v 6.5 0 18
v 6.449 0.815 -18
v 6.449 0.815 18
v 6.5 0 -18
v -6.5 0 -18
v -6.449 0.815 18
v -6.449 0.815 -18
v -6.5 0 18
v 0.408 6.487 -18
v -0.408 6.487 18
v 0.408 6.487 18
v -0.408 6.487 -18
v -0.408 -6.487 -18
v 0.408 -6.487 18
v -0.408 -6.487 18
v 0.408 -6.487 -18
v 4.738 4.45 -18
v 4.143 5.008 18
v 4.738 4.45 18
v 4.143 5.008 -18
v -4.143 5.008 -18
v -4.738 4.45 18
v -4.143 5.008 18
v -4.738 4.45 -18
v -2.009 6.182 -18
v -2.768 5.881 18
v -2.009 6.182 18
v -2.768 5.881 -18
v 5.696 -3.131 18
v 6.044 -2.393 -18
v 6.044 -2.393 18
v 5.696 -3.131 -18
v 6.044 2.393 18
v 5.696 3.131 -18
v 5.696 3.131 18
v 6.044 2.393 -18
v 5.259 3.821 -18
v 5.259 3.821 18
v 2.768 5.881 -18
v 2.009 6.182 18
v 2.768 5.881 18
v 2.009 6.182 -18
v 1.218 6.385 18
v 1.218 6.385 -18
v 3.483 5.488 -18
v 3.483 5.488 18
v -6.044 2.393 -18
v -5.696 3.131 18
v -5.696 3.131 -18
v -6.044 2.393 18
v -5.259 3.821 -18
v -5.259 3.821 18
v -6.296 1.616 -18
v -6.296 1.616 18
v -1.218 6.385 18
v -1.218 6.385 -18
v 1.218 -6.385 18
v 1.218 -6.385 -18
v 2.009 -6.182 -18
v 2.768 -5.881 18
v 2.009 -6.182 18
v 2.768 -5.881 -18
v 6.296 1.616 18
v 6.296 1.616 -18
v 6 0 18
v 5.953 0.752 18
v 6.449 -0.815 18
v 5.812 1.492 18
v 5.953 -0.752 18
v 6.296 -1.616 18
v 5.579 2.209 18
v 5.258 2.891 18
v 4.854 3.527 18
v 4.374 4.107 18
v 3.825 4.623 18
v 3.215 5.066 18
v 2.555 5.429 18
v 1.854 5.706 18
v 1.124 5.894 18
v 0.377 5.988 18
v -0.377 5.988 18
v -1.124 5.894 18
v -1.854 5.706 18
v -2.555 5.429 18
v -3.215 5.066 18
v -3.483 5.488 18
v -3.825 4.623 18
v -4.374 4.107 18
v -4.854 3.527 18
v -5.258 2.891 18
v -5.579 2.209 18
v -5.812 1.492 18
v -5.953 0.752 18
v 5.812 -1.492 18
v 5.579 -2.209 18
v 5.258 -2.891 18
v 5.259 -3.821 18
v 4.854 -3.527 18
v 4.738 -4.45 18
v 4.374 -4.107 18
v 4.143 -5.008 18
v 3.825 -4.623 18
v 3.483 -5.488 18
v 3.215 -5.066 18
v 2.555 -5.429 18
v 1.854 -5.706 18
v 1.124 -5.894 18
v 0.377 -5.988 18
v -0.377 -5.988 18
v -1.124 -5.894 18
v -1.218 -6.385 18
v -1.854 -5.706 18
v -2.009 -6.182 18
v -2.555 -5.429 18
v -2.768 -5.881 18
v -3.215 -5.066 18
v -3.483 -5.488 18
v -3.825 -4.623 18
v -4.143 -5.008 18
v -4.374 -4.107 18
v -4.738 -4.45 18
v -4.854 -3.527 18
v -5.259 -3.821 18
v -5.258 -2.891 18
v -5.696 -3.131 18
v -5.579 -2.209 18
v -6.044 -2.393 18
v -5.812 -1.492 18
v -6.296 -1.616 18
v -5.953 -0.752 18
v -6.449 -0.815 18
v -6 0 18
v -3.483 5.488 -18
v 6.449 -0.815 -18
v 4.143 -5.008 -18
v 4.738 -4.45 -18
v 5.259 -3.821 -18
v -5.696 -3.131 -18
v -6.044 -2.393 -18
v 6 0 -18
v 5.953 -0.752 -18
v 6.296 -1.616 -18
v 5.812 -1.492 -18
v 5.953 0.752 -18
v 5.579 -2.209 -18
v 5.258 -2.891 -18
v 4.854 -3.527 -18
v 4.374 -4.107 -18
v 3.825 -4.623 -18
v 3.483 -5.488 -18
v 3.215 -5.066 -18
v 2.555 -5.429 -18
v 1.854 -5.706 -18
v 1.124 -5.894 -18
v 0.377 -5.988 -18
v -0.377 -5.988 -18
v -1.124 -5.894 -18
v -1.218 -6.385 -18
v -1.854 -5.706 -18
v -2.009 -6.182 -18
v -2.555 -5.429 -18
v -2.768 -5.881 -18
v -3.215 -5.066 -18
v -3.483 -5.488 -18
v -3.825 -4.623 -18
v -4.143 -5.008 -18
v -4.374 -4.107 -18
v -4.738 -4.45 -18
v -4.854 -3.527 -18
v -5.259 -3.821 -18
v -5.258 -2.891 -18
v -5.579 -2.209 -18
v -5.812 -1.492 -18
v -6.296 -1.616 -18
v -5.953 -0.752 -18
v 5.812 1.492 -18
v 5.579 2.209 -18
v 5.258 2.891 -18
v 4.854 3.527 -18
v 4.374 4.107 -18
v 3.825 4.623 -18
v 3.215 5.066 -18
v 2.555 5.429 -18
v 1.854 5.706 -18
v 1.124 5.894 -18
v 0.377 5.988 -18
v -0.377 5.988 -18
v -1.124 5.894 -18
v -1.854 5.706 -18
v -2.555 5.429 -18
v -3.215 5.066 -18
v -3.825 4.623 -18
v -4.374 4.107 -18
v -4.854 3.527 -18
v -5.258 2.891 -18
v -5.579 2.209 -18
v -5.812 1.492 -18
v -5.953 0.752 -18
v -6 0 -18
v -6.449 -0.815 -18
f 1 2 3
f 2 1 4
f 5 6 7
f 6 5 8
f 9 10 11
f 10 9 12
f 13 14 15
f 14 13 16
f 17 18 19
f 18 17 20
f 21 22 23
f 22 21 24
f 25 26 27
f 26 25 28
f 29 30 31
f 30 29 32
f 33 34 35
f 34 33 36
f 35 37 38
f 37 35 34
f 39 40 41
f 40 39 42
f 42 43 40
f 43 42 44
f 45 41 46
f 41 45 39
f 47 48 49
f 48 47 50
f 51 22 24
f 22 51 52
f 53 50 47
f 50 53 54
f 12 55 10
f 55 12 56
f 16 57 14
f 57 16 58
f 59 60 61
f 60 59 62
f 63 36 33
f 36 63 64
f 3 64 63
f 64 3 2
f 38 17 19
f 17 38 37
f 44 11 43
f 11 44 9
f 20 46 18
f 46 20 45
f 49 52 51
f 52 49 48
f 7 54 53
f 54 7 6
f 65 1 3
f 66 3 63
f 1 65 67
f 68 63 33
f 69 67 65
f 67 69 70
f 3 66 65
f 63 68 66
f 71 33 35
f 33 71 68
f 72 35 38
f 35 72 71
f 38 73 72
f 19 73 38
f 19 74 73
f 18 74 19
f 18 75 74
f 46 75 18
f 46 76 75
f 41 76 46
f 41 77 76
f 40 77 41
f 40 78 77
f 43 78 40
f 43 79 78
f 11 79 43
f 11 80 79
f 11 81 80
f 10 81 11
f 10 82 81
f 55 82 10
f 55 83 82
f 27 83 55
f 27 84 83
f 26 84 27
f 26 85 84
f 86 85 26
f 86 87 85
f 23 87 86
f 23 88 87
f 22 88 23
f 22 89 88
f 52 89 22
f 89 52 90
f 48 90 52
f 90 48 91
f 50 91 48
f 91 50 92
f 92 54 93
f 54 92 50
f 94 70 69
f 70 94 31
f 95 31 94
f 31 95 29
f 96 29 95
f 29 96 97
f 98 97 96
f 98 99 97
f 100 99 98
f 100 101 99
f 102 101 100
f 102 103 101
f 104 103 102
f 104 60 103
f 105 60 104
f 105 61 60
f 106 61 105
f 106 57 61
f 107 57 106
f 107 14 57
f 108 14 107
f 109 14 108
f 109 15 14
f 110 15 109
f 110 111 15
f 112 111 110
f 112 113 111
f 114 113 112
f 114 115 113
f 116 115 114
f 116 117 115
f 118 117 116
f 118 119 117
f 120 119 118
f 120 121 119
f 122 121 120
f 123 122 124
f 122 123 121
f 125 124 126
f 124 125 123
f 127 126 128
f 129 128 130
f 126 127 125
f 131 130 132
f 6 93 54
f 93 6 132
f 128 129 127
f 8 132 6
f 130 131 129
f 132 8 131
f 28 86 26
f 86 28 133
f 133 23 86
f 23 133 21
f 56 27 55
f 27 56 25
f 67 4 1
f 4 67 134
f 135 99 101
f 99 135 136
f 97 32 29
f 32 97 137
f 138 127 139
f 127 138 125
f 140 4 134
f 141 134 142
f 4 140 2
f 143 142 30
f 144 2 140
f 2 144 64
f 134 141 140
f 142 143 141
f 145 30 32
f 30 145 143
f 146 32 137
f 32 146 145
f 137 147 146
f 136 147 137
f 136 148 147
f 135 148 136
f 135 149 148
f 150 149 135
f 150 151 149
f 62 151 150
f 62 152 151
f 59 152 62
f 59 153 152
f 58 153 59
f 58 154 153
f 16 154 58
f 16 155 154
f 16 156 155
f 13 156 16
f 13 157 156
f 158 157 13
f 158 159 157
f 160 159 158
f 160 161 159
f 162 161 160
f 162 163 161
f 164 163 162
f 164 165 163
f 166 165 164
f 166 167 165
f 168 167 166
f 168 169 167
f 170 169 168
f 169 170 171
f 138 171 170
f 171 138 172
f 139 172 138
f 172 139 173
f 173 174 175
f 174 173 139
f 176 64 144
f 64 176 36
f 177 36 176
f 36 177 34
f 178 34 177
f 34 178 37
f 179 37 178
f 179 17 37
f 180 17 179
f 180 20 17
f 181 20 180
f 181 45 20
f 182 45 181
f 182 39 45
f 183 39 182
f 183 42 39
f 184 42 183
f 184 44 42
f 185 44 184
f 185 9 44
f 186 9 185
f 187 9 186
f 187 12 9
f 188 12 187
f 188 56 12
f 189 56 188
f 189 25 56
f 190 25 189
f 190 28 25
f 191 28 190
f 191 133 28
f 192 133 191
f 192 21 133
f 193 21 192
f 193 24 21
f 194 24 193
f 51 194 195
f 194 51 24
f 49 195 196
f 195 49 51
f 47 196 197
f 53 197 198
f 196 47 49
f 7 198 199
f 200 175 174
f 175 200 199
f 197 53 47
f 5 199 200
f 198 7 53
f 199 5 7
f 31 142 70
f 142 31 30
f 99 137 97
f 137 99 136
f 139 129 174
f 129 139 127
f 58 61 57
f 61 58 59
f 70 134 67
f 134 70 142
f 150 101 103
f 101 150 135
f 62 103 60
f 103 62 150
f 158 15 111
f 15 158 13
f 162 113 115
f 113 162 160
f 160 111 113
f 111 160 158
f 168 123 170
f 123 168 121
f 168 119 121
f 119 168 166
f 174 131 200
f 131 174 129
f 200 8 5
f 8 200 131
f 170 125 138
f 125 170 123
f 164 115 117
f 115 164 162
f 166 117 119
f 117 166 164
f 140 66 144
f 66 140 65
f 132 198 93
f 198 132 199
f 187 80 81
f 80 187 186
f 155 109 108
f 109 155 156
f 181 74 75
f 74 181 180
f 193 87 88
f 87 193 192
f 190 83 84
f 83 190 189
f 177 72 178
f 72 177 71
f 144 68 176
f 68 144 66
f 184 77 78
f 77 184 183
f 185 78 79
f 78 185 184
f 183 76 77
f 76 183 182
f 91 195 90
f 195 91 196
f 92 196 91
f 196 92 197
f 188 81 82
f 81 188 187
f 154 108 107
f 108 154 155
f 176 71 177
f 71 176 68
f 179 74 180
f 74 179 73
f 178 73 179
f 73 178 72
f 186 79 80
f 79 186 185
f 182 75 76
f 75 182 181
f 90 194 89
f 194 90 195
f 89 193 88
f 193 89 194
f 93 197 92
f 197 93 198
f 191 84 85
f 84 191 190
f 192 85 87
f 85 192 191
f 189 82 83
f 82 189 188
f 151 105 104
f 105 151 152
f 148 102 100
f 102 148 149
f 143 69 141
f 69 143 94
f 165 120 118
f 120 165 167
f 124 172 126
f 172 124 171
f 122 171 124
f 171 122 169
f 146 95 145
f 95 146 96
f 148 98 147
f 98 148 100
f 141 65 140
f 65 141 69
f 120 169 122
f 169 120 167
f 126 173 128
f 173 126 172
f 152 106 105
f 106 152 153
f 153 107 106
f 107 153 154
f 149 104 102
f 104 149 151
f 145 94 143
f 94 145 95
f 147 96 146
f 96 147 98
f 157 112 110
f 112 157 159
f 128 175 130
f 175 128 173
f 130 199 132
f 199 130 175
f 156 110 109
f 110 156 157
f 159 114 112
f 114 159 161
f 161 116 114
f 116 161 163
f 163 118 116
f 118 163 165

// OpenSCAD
$fn = 50;


difference() {
	union() {
		translate(v = [0, 0, -18.0000000000]) {
			cylinder(h = 36, r = 6.5000000000);
		}
	}
	union() {
		translate(v = [0, 0, -100.0000000000]) {
			cylinder(h = 200, r = 6);
		}
	}
}
